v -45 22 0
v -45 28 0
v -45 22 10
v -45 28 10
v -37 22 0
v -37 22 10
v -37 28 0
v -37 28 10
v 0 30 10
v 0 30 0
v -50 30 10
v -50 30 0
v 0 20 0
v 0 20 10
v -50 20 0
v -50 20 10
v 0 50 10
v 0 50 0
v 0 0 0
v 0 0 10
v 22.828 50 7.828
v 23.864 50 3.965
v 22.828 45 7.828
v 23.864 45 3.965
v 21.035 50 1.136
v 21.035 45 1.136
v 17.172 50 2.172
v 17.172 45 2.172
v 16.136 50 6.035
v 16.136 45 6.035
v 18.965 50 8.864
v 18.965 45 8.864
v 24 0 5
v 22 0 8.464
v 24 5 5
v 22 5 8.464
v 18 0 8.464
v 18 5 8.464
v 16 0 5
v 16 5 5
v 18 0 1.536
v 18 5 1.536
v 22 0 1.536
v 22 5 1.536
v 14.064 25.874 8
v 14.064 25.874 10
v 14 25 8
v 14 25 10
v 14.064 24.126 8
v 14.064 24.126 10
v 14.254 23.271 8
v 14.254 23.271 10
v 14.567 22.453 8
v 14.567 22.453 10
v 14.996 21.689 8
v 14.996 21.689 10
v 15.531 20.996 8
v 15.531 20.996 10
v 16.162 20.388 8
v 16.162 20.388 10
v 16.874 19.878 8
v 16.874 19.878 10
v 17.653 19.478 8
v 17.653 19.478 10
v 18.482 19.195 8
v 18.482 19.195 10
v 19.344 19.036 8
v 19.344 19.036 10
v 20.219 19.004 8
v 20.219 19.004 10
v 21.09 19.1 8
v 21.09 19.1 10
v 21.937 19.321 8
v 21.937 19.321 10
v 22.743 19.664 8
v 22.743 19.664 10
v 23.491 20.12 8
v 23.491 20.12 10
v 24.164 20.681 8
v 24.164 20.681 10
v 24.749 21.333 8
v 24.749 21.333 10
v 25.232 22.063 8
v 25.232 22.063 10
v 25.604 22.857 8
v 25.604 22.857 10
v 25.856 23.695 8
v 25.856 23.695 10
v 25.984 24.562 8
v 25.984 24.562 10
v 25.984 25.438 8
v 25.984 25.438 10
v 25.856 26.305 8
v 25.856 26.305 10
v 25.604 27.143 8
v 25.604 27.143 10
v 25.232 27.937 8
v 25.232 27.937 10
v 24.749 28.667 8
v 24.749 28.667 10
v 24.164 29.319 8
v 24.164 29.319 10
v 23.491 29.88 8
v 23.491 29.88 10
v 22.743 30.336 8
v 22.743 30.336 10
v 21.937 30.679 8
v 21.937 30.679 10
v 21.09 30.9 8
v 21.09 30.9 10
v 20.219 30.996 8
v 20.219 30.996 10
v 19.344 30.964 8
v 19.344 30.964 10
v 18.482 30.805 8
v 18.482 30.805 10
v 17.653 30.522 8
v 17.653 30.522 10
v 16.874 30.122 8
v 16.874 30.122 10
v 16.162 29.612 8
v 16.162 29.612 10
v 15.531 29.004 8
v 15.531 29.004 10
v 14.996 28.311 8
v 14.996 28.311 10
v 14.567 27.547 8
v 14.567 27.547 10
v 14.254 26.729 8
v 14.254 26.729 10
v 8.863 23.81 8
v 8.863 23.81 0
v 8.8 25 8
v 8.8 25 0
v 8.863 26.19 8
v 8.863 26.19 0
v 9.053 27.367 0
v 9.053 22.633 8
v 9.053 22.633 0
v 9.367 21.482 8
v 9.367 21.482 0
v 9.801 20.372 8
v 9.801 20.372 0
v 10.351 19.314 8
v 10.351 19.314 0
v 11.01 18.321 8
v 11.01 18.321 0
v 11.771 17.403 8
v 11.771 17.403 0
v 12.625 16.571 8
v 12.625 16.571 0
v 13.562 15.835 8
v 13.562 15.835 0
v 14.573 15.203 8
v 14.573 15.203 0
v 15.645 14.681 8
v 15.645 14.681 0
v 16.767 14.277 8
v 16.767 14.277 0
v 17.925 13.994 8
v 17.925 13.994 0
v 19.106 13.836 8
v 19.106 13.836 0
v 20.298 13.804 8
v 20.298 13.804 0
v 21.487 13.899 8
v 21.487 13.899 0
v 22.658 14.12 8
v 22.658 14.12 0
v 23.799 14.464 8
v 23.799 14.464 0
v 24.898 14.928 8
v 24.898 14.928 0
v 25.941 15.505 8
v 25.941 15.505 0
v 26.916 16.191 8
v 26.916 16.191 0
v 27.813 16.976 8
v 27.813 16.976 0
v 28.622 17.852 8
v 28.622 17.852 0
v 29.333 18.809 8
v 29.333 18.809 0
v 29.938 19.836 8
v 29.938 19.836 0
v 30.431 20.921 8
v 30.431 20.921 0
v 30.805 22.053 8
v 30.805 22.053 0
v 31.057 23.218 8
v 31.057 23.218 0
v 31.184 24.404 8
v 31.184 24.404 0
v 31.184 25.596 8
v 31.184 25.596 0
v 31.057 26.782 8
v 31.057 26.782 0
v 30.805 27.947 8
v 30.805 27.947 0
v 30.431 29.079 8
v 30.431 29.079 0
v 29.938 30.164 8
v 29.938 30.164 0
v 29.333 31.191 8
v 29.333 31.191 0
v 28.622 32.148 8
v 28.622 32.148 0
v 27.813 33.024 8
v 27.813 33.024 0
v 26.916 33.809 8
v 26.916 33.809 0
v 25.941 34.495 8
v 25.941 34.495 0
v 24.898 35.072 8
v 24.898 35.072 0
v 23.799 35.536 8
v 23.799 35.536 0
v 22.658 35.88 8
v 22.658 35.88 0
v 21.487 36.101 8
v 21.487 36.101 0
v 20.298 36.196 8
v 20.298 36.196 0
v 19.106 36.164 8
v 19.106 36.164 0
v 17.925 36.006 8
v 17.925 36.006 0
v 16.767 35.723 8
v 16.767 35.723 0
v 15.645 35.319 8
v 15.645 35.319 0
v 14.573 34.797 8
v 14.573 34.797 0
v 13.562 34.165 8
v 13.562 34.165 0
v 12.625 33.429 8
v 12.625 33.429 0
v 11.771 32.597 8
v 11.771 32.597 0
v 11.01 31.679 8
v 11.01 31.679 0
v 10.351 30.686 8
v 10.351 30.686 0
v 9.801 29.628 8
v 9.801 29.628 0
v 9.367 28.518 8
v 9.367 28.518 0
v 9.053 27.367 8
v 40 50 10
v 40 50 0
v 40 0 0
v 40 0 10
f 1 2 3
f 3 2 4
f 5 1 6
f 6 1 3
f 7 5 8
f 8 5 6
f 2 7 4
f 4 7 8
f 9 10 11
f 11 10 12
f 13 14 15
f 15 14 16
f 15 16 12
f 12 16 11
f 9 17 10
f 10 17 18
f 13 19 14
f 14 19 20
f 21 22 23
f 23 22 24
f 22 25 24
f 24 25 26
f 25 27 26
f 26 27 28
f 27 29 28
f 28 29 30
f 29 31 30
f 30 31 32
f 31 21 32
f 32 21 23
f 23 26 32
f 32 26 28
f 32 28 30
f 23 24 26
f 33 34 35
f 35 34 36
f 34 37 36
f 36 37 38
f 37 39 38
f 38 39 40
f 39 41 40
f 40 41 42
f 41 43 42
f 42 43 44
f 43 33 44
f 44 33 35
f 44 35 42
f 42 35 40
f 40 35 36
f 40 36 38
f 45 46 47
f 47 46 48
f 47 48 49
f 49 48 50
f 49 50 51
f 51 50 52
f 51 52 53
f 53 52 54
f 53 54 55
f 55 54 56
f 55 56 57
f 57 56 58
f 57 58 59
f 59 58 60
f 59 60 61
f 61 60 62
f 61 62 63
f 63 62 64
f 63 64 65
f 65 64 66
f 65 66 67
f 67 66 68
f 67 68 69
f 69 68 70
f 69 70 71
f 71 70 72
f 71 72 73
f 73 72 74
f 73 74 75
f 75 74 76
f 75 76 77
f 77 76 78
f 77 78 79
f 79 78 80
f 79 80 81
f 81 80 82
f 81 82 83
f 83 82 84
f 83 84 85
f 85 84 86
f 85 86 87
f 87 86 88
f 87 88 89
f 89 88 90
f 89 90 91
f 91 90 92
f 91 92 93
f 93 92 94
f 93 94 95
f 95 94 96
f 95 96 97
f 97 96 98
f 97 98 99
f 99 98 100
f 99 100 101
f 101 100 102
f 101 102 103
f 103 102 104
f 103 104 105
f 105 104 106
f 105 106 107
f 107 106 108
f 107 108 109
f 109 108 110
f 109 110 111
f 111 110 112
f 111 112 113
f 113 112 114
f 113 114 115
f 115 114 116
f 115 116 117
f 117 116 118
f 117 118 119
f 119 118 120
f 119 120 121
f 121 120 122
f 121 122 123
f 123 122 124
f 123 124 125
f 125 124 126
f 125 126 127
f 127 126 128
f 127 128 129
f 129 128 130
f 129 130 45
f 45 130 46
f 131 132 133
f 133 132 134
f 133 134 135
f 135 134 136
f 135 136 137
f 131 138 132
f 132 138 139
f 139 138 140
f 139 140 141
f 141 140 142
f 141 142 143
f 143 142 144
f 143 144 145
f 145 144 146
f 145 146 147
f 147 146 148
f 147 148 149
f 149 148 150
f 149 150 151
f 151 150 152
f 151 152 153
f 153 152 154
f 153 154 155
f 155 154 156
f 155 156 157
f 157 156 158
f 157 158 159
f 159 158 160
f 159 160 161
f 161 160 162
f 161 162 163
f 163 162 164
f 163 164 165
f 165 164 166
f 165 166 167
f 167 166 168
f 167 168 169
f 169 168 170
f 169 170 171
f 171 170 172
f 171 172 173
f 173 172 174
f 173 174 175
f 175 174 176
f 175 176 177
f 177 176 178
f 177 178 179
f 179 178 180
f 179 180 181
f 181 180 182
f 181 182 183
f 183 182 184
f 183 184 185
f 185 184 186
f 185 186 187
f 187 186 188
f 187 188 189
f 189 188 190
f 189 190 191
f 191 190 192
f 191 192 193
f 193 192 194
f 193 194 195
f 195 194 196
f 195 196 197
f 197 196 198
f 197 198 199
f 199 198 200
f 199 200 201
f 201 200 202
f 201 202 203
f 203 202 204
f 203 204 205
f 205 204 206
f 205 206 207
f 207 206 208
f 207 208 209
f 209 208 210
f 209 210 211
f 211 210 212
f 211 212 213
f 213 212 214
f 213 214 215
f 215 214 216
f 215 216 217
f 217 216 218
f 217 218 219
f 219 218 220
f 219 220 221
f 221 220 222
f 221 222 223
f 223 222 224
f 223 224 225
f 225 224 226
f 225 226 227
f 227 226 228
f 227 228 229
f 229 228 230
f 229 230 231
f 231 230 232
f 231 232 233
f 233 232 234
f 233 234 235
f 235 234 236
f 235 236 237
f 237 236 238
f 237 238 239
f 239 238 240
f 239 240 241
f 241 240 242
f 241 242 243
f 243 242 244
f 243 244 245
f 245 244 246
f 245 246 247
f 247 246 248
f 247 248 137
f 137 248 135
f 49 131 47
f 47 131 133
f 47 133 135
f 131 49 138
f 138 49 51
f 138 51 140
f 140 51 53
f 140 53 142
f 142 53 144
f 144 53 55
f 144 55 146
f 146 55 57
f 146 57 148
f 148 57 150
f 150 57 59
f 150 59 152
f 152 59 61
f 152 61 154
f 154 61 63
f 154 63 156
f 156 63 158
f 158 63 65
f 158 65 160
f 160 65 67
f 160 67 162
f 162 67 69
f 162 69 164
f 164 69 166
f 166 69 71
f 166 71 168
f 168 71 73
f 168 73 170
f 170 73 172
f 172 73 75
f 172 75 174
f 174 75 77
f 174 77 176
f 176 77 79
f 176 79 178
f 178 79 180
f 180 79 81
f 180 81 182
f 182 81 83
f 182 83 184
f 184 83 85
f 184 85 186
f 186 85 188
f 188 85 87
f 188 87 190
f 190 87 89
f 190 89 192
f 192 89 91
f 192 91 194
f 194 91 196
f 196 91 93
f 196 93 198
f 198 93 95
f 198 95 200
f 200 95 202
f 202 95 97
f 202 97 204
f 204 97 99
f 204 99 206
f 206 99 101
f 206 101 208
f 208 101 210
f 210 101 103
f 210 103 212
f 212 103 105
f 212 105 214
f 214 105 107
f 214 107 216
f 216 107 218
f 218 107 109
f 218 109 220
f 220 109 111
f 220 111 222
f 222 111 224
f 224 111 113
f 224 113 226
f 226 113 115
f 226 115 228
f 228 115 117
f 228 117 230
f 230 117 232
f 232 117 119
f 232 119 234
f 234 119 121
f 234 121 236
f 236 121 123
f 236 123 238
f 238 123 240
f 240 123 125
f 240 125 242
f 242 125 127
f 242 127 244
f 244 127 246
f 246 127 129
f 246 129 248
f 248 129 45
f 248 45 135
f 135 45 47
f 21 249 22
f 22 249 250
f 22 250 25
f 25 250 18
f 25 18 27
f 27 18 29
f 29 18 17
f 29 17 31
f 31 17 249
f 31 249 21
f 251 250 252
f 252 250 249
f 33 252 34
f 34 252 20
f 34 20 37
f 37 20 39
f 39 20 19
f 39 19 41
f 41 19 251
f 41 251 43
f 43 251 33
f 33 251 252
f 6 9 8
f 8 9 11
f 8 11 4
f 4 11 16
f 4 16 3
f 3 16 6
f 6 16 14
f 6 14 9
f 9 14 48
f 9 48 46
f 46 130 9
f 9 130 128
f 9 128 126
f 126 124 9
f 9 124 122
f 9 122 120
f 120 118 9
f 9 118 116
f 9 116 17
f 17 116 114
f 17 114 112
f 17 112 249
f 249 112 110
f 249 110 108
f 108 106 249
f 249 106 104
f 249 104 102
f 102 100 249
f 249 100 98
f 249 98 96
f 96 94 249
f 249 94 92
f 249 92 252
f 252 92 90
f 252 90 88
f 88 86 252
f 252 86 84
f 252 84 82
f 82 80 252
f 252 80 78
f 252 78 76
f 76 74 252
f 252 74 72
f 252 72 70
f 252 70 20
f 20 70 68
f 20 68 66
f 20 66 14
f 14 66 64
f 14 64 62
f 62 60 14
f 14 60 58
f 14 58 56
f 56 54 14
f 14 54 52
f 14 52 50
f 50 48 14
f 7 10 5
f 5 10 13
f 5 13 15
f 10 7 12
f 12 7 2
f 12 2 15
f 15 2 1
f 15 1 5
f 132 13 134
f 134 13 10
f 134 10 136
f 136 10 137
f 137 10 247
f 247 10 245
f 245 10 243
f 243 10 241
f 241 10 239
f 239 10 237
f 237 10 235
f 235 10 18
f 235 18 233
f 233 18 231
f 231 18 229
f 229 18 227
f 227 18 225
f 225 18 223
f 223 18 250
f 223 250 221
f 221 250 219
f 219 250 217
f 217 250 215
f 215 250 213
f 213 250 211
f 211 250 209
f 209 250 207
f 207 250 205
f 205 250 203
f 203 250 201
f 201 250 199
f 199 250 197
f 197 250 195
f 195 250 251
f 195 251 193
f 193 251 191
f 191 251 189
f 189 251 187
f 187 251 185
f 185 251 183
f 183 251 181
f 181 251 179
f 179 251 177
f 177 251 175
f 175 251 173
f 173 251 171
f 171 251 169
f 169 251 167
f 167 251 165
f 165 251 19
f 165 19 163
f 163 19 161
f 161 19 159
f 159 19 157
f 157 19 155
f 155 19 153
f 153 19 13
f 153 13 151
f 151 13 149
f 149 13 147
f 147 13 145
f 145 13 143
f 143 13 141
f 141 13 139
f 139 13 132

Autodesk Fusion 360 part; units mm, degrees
sketch "Top" plane through (0, 0, 0) normal (0, 0, 1) x (1, 0, 0)
  line L0 (0, 0) -> (40, 0)
  line L1 (40, 0) -> (40, 50)
  line L2 (40, 50) -> (0, 50)
  line L3 (0, 50) -> (0, 0)
  circle A0 centre (20, 25) radius 11.2
  circle A1 centre (20, 25) radius 6
  dimension "d6" = 40
  dimension "d7" = 50
  dimension "d11" = 22.4
  dimension "d12" = 25
  dimension "d13" = 20
  dimension "d27" = 12
extrude "Extrude1" add sketch "Top" along normal blind 10 contours L0 L1 L2 L3 | A0 | A1
extrude "Extrude2" cut sketch "Top" along normal blind 8 contours A0 | A1
extrude "Extrude5" cut sketch "Top" along normal blind 110 contours A1
sketch "Sketch3" plane through (0, 0, 0) normal (0, -1, 0) x (1, 0, 0)
  line L0 (0, 0) -> (40, 0)
  line L1 (40, 0) -> (40, 10)
  line L2 (40, 10) -> (0, 10)
  line L3 (0, 10) -> (0, 0)
  line L4 (24, 5) -> (22, 8.4641)
  line L5 (22, 8.4641) -> (18, 8.4641)
  line L6 (18, 8.4641) -> (16, 5)
  line L7 (16, 5) -> (18, 1.5359)
  line L8 (18, 1.5359) -> (22, 1.5359)
  line L9 (22, 1.5359) -> (24, 5)
  point P0 (20, 5)
  dimension "d34" = 4
  dimension "d37" = 20
  dimension "d38" = 5
extrude "Extrude6" cut sketch "Sketch3" against normal blind 5 contours L4 L5 L6 L7 L8 L9
sketch "Sketch4" plane through (0, 50, 0) normal (0, 1, 0) x (-1, 0, 0)
  line L0 (-40, 0) -> (0, 0)
  line L1 (0, 0) -> (0, 10)
  line L2 (0, 10) -> (-40, 10)
  line L3 (-40, 10) -> (-40, 0)
  line L4 (-22.8284, 7.8284) -> (-23.8637, 3.9647)
  line L5 (-23.8637, 3.9647) -> (-21.0353, 1.1363)
  line L6 (-21.0353, 1.1363) -> (-17.1716, 2.1716)
  line L7 (-17.1716, 2.1716) -> (-16.1363, 6.0353)
  line L8 (-16.1363, 6.0353) -> (-18.9647, 8.8637)
  line L9 (-18.9647, 8.8637) -> (-22.8284, 7.8284)
  point P0 (-20, 5)
  dimension "d39" = 4
  dimension "d42" = 20
  dimension "d43" = 5
extrude "Extrude7" cut sketch "Sketch4" against normal blind 5 contours L4 L5 L6 L7 L8 L9
sketch "Sketch5" plane through (0, 0, 0) normal (-1, 0, 0) x (0, -1, 0)
  line L0 (-50, 0) -> (0, 0)
  line L1 (0, 0) -> (0, 10)
  line L2 (0, 10) -> (-50, 10)
  line L3 (-50, 10) -> (-50, 0)
  line L4 (-30, 10) -> (-20, 10)
  line L5 (-20, 10) -> (-20, 0)
  line L6 (-20, 0) -> (-30, 0)
  line L7 (-30, 0) -> (-30, 10)
  dimension "d50" = 10
  dimension "d51" = 10
  dimension "d52" = 20
extrude "Extrude8" add sketch "Sketch5" along normal blind 50 contours L0 L2 L4 L5 L6 L7
sketch "Sketch7" plane through (0, 0, 10) normal (0, 0, 1) x (-1, 0, 0)
  circle A0 centre (-20, -25) radius 6
  line L0 (0, -50) -> (0, -30)
  line L1 (0, -30) -> (50, -30)
  line L2 (50, -30) -> (50, -20)
  line L3 (50, -20) -> (0, -20)
  line L4 (0, -20) -> (0, 0)
  line L5 (0, 0) -> (-40, 0)
  line L6 (-40, 0) -> (-40, -50)
  line L7 (-40, -50) -> (0, -50)
  line L8 (45, -28) -> (37, -28)
  line L9 (37, -28) -> (37, -22)
  line L10 (37, -22) -> (45, -22)
  line L11 (45, -22) -> (45, -28)
  dimension "d64" = 6
  dimension "d65" = 8
  dimension "d67" = 5
  dimension "d69" = 2
extrude "Extrude10" cut sketch "Sketch7" against normal blind 100 contours L8 L9 L10 L11
equation "length = 50 mm"
equation "width = 40 mm"
equation "thickness = 10 mm"
equation "extra = 100 mm"
equation "fit_gap = 0.2 mm"
equation "d6 = width"
equation "d7 = length"
equation "d8 = thickness"
equation "bearing_outer_radius = 11.1 mm"
equation "d11 = ( bearing_outer_radius * 2 ) + fit_gap"
equation "d12 = length / 2"
equation "d13 = width / 2"
equation "d14 = thickness - 2 mm"
equation "bearing_inner_radius = ( 8 mm + 4 mm ) / 2"
equation "d27 = bearing_inner_radius * 2"
equation "d28 = thickness + extra"
equation "polygon_dowel_hole_side_length = 4 mm"
equation "polygon_dowel_hole_side_height = 5 mm"
equation "polygon_dowel_hole_big_distance = width / 2"
equation "polygon_dowel_hole_small_distance = thickness / 2"
equation "d34 = polygon_dowel_hole_side_length"
equation "d35 = -polygon_dowel_hole_side_height"
equation "d37 = polygon_dowel_hole_big_distance"
equation "d38 = polygon_dowel_hole_small_distance"
equation "d39 = polygon_dowel_hole_side_length"
equation "d40 = -polygon_dowel_hole_side_height"
equation "d42 = polygon_dowel_hole_big_distance"
equation "d43 = polygon_dowel_hole_small_distance"
equation "ackerman_bracket_length = 50 mm"
equation "ackerman_bracket_width = 10 mm"
equation "ackerman_bracket_big_distance = ( length - ackerman_bracket_width ) / 2"
equation "d50 = ackerman_bracket_width"
equation "d51 = ackerman_bracket_width"
equation "d52 = ackerman_bracket_big_distance"
equation "d53 = ackerman_bracket_length"
equation "ackerman_bracket_dowel_length = 8 mm"
equation "ackerman_bracket_dowel_width = 6 mm"
equation "ackerman_bracket_dowel_big_distance = 5 mm"
equation "ackerman_bracket_dowel_small_distance = ( ackerman_bracket_width - ackerman_bracket_dowel_width ) / 2"
equation "d64 = ackerman_bracket_dowel_width"
equation "d65 = ackerman_bracket_dowel_length"
equation "d67 = ackerman_bracket_dowel_big_distance"
equation "d69 = ackerman_bracket_dowel_small_distance"
equation "d70 = -extra"
